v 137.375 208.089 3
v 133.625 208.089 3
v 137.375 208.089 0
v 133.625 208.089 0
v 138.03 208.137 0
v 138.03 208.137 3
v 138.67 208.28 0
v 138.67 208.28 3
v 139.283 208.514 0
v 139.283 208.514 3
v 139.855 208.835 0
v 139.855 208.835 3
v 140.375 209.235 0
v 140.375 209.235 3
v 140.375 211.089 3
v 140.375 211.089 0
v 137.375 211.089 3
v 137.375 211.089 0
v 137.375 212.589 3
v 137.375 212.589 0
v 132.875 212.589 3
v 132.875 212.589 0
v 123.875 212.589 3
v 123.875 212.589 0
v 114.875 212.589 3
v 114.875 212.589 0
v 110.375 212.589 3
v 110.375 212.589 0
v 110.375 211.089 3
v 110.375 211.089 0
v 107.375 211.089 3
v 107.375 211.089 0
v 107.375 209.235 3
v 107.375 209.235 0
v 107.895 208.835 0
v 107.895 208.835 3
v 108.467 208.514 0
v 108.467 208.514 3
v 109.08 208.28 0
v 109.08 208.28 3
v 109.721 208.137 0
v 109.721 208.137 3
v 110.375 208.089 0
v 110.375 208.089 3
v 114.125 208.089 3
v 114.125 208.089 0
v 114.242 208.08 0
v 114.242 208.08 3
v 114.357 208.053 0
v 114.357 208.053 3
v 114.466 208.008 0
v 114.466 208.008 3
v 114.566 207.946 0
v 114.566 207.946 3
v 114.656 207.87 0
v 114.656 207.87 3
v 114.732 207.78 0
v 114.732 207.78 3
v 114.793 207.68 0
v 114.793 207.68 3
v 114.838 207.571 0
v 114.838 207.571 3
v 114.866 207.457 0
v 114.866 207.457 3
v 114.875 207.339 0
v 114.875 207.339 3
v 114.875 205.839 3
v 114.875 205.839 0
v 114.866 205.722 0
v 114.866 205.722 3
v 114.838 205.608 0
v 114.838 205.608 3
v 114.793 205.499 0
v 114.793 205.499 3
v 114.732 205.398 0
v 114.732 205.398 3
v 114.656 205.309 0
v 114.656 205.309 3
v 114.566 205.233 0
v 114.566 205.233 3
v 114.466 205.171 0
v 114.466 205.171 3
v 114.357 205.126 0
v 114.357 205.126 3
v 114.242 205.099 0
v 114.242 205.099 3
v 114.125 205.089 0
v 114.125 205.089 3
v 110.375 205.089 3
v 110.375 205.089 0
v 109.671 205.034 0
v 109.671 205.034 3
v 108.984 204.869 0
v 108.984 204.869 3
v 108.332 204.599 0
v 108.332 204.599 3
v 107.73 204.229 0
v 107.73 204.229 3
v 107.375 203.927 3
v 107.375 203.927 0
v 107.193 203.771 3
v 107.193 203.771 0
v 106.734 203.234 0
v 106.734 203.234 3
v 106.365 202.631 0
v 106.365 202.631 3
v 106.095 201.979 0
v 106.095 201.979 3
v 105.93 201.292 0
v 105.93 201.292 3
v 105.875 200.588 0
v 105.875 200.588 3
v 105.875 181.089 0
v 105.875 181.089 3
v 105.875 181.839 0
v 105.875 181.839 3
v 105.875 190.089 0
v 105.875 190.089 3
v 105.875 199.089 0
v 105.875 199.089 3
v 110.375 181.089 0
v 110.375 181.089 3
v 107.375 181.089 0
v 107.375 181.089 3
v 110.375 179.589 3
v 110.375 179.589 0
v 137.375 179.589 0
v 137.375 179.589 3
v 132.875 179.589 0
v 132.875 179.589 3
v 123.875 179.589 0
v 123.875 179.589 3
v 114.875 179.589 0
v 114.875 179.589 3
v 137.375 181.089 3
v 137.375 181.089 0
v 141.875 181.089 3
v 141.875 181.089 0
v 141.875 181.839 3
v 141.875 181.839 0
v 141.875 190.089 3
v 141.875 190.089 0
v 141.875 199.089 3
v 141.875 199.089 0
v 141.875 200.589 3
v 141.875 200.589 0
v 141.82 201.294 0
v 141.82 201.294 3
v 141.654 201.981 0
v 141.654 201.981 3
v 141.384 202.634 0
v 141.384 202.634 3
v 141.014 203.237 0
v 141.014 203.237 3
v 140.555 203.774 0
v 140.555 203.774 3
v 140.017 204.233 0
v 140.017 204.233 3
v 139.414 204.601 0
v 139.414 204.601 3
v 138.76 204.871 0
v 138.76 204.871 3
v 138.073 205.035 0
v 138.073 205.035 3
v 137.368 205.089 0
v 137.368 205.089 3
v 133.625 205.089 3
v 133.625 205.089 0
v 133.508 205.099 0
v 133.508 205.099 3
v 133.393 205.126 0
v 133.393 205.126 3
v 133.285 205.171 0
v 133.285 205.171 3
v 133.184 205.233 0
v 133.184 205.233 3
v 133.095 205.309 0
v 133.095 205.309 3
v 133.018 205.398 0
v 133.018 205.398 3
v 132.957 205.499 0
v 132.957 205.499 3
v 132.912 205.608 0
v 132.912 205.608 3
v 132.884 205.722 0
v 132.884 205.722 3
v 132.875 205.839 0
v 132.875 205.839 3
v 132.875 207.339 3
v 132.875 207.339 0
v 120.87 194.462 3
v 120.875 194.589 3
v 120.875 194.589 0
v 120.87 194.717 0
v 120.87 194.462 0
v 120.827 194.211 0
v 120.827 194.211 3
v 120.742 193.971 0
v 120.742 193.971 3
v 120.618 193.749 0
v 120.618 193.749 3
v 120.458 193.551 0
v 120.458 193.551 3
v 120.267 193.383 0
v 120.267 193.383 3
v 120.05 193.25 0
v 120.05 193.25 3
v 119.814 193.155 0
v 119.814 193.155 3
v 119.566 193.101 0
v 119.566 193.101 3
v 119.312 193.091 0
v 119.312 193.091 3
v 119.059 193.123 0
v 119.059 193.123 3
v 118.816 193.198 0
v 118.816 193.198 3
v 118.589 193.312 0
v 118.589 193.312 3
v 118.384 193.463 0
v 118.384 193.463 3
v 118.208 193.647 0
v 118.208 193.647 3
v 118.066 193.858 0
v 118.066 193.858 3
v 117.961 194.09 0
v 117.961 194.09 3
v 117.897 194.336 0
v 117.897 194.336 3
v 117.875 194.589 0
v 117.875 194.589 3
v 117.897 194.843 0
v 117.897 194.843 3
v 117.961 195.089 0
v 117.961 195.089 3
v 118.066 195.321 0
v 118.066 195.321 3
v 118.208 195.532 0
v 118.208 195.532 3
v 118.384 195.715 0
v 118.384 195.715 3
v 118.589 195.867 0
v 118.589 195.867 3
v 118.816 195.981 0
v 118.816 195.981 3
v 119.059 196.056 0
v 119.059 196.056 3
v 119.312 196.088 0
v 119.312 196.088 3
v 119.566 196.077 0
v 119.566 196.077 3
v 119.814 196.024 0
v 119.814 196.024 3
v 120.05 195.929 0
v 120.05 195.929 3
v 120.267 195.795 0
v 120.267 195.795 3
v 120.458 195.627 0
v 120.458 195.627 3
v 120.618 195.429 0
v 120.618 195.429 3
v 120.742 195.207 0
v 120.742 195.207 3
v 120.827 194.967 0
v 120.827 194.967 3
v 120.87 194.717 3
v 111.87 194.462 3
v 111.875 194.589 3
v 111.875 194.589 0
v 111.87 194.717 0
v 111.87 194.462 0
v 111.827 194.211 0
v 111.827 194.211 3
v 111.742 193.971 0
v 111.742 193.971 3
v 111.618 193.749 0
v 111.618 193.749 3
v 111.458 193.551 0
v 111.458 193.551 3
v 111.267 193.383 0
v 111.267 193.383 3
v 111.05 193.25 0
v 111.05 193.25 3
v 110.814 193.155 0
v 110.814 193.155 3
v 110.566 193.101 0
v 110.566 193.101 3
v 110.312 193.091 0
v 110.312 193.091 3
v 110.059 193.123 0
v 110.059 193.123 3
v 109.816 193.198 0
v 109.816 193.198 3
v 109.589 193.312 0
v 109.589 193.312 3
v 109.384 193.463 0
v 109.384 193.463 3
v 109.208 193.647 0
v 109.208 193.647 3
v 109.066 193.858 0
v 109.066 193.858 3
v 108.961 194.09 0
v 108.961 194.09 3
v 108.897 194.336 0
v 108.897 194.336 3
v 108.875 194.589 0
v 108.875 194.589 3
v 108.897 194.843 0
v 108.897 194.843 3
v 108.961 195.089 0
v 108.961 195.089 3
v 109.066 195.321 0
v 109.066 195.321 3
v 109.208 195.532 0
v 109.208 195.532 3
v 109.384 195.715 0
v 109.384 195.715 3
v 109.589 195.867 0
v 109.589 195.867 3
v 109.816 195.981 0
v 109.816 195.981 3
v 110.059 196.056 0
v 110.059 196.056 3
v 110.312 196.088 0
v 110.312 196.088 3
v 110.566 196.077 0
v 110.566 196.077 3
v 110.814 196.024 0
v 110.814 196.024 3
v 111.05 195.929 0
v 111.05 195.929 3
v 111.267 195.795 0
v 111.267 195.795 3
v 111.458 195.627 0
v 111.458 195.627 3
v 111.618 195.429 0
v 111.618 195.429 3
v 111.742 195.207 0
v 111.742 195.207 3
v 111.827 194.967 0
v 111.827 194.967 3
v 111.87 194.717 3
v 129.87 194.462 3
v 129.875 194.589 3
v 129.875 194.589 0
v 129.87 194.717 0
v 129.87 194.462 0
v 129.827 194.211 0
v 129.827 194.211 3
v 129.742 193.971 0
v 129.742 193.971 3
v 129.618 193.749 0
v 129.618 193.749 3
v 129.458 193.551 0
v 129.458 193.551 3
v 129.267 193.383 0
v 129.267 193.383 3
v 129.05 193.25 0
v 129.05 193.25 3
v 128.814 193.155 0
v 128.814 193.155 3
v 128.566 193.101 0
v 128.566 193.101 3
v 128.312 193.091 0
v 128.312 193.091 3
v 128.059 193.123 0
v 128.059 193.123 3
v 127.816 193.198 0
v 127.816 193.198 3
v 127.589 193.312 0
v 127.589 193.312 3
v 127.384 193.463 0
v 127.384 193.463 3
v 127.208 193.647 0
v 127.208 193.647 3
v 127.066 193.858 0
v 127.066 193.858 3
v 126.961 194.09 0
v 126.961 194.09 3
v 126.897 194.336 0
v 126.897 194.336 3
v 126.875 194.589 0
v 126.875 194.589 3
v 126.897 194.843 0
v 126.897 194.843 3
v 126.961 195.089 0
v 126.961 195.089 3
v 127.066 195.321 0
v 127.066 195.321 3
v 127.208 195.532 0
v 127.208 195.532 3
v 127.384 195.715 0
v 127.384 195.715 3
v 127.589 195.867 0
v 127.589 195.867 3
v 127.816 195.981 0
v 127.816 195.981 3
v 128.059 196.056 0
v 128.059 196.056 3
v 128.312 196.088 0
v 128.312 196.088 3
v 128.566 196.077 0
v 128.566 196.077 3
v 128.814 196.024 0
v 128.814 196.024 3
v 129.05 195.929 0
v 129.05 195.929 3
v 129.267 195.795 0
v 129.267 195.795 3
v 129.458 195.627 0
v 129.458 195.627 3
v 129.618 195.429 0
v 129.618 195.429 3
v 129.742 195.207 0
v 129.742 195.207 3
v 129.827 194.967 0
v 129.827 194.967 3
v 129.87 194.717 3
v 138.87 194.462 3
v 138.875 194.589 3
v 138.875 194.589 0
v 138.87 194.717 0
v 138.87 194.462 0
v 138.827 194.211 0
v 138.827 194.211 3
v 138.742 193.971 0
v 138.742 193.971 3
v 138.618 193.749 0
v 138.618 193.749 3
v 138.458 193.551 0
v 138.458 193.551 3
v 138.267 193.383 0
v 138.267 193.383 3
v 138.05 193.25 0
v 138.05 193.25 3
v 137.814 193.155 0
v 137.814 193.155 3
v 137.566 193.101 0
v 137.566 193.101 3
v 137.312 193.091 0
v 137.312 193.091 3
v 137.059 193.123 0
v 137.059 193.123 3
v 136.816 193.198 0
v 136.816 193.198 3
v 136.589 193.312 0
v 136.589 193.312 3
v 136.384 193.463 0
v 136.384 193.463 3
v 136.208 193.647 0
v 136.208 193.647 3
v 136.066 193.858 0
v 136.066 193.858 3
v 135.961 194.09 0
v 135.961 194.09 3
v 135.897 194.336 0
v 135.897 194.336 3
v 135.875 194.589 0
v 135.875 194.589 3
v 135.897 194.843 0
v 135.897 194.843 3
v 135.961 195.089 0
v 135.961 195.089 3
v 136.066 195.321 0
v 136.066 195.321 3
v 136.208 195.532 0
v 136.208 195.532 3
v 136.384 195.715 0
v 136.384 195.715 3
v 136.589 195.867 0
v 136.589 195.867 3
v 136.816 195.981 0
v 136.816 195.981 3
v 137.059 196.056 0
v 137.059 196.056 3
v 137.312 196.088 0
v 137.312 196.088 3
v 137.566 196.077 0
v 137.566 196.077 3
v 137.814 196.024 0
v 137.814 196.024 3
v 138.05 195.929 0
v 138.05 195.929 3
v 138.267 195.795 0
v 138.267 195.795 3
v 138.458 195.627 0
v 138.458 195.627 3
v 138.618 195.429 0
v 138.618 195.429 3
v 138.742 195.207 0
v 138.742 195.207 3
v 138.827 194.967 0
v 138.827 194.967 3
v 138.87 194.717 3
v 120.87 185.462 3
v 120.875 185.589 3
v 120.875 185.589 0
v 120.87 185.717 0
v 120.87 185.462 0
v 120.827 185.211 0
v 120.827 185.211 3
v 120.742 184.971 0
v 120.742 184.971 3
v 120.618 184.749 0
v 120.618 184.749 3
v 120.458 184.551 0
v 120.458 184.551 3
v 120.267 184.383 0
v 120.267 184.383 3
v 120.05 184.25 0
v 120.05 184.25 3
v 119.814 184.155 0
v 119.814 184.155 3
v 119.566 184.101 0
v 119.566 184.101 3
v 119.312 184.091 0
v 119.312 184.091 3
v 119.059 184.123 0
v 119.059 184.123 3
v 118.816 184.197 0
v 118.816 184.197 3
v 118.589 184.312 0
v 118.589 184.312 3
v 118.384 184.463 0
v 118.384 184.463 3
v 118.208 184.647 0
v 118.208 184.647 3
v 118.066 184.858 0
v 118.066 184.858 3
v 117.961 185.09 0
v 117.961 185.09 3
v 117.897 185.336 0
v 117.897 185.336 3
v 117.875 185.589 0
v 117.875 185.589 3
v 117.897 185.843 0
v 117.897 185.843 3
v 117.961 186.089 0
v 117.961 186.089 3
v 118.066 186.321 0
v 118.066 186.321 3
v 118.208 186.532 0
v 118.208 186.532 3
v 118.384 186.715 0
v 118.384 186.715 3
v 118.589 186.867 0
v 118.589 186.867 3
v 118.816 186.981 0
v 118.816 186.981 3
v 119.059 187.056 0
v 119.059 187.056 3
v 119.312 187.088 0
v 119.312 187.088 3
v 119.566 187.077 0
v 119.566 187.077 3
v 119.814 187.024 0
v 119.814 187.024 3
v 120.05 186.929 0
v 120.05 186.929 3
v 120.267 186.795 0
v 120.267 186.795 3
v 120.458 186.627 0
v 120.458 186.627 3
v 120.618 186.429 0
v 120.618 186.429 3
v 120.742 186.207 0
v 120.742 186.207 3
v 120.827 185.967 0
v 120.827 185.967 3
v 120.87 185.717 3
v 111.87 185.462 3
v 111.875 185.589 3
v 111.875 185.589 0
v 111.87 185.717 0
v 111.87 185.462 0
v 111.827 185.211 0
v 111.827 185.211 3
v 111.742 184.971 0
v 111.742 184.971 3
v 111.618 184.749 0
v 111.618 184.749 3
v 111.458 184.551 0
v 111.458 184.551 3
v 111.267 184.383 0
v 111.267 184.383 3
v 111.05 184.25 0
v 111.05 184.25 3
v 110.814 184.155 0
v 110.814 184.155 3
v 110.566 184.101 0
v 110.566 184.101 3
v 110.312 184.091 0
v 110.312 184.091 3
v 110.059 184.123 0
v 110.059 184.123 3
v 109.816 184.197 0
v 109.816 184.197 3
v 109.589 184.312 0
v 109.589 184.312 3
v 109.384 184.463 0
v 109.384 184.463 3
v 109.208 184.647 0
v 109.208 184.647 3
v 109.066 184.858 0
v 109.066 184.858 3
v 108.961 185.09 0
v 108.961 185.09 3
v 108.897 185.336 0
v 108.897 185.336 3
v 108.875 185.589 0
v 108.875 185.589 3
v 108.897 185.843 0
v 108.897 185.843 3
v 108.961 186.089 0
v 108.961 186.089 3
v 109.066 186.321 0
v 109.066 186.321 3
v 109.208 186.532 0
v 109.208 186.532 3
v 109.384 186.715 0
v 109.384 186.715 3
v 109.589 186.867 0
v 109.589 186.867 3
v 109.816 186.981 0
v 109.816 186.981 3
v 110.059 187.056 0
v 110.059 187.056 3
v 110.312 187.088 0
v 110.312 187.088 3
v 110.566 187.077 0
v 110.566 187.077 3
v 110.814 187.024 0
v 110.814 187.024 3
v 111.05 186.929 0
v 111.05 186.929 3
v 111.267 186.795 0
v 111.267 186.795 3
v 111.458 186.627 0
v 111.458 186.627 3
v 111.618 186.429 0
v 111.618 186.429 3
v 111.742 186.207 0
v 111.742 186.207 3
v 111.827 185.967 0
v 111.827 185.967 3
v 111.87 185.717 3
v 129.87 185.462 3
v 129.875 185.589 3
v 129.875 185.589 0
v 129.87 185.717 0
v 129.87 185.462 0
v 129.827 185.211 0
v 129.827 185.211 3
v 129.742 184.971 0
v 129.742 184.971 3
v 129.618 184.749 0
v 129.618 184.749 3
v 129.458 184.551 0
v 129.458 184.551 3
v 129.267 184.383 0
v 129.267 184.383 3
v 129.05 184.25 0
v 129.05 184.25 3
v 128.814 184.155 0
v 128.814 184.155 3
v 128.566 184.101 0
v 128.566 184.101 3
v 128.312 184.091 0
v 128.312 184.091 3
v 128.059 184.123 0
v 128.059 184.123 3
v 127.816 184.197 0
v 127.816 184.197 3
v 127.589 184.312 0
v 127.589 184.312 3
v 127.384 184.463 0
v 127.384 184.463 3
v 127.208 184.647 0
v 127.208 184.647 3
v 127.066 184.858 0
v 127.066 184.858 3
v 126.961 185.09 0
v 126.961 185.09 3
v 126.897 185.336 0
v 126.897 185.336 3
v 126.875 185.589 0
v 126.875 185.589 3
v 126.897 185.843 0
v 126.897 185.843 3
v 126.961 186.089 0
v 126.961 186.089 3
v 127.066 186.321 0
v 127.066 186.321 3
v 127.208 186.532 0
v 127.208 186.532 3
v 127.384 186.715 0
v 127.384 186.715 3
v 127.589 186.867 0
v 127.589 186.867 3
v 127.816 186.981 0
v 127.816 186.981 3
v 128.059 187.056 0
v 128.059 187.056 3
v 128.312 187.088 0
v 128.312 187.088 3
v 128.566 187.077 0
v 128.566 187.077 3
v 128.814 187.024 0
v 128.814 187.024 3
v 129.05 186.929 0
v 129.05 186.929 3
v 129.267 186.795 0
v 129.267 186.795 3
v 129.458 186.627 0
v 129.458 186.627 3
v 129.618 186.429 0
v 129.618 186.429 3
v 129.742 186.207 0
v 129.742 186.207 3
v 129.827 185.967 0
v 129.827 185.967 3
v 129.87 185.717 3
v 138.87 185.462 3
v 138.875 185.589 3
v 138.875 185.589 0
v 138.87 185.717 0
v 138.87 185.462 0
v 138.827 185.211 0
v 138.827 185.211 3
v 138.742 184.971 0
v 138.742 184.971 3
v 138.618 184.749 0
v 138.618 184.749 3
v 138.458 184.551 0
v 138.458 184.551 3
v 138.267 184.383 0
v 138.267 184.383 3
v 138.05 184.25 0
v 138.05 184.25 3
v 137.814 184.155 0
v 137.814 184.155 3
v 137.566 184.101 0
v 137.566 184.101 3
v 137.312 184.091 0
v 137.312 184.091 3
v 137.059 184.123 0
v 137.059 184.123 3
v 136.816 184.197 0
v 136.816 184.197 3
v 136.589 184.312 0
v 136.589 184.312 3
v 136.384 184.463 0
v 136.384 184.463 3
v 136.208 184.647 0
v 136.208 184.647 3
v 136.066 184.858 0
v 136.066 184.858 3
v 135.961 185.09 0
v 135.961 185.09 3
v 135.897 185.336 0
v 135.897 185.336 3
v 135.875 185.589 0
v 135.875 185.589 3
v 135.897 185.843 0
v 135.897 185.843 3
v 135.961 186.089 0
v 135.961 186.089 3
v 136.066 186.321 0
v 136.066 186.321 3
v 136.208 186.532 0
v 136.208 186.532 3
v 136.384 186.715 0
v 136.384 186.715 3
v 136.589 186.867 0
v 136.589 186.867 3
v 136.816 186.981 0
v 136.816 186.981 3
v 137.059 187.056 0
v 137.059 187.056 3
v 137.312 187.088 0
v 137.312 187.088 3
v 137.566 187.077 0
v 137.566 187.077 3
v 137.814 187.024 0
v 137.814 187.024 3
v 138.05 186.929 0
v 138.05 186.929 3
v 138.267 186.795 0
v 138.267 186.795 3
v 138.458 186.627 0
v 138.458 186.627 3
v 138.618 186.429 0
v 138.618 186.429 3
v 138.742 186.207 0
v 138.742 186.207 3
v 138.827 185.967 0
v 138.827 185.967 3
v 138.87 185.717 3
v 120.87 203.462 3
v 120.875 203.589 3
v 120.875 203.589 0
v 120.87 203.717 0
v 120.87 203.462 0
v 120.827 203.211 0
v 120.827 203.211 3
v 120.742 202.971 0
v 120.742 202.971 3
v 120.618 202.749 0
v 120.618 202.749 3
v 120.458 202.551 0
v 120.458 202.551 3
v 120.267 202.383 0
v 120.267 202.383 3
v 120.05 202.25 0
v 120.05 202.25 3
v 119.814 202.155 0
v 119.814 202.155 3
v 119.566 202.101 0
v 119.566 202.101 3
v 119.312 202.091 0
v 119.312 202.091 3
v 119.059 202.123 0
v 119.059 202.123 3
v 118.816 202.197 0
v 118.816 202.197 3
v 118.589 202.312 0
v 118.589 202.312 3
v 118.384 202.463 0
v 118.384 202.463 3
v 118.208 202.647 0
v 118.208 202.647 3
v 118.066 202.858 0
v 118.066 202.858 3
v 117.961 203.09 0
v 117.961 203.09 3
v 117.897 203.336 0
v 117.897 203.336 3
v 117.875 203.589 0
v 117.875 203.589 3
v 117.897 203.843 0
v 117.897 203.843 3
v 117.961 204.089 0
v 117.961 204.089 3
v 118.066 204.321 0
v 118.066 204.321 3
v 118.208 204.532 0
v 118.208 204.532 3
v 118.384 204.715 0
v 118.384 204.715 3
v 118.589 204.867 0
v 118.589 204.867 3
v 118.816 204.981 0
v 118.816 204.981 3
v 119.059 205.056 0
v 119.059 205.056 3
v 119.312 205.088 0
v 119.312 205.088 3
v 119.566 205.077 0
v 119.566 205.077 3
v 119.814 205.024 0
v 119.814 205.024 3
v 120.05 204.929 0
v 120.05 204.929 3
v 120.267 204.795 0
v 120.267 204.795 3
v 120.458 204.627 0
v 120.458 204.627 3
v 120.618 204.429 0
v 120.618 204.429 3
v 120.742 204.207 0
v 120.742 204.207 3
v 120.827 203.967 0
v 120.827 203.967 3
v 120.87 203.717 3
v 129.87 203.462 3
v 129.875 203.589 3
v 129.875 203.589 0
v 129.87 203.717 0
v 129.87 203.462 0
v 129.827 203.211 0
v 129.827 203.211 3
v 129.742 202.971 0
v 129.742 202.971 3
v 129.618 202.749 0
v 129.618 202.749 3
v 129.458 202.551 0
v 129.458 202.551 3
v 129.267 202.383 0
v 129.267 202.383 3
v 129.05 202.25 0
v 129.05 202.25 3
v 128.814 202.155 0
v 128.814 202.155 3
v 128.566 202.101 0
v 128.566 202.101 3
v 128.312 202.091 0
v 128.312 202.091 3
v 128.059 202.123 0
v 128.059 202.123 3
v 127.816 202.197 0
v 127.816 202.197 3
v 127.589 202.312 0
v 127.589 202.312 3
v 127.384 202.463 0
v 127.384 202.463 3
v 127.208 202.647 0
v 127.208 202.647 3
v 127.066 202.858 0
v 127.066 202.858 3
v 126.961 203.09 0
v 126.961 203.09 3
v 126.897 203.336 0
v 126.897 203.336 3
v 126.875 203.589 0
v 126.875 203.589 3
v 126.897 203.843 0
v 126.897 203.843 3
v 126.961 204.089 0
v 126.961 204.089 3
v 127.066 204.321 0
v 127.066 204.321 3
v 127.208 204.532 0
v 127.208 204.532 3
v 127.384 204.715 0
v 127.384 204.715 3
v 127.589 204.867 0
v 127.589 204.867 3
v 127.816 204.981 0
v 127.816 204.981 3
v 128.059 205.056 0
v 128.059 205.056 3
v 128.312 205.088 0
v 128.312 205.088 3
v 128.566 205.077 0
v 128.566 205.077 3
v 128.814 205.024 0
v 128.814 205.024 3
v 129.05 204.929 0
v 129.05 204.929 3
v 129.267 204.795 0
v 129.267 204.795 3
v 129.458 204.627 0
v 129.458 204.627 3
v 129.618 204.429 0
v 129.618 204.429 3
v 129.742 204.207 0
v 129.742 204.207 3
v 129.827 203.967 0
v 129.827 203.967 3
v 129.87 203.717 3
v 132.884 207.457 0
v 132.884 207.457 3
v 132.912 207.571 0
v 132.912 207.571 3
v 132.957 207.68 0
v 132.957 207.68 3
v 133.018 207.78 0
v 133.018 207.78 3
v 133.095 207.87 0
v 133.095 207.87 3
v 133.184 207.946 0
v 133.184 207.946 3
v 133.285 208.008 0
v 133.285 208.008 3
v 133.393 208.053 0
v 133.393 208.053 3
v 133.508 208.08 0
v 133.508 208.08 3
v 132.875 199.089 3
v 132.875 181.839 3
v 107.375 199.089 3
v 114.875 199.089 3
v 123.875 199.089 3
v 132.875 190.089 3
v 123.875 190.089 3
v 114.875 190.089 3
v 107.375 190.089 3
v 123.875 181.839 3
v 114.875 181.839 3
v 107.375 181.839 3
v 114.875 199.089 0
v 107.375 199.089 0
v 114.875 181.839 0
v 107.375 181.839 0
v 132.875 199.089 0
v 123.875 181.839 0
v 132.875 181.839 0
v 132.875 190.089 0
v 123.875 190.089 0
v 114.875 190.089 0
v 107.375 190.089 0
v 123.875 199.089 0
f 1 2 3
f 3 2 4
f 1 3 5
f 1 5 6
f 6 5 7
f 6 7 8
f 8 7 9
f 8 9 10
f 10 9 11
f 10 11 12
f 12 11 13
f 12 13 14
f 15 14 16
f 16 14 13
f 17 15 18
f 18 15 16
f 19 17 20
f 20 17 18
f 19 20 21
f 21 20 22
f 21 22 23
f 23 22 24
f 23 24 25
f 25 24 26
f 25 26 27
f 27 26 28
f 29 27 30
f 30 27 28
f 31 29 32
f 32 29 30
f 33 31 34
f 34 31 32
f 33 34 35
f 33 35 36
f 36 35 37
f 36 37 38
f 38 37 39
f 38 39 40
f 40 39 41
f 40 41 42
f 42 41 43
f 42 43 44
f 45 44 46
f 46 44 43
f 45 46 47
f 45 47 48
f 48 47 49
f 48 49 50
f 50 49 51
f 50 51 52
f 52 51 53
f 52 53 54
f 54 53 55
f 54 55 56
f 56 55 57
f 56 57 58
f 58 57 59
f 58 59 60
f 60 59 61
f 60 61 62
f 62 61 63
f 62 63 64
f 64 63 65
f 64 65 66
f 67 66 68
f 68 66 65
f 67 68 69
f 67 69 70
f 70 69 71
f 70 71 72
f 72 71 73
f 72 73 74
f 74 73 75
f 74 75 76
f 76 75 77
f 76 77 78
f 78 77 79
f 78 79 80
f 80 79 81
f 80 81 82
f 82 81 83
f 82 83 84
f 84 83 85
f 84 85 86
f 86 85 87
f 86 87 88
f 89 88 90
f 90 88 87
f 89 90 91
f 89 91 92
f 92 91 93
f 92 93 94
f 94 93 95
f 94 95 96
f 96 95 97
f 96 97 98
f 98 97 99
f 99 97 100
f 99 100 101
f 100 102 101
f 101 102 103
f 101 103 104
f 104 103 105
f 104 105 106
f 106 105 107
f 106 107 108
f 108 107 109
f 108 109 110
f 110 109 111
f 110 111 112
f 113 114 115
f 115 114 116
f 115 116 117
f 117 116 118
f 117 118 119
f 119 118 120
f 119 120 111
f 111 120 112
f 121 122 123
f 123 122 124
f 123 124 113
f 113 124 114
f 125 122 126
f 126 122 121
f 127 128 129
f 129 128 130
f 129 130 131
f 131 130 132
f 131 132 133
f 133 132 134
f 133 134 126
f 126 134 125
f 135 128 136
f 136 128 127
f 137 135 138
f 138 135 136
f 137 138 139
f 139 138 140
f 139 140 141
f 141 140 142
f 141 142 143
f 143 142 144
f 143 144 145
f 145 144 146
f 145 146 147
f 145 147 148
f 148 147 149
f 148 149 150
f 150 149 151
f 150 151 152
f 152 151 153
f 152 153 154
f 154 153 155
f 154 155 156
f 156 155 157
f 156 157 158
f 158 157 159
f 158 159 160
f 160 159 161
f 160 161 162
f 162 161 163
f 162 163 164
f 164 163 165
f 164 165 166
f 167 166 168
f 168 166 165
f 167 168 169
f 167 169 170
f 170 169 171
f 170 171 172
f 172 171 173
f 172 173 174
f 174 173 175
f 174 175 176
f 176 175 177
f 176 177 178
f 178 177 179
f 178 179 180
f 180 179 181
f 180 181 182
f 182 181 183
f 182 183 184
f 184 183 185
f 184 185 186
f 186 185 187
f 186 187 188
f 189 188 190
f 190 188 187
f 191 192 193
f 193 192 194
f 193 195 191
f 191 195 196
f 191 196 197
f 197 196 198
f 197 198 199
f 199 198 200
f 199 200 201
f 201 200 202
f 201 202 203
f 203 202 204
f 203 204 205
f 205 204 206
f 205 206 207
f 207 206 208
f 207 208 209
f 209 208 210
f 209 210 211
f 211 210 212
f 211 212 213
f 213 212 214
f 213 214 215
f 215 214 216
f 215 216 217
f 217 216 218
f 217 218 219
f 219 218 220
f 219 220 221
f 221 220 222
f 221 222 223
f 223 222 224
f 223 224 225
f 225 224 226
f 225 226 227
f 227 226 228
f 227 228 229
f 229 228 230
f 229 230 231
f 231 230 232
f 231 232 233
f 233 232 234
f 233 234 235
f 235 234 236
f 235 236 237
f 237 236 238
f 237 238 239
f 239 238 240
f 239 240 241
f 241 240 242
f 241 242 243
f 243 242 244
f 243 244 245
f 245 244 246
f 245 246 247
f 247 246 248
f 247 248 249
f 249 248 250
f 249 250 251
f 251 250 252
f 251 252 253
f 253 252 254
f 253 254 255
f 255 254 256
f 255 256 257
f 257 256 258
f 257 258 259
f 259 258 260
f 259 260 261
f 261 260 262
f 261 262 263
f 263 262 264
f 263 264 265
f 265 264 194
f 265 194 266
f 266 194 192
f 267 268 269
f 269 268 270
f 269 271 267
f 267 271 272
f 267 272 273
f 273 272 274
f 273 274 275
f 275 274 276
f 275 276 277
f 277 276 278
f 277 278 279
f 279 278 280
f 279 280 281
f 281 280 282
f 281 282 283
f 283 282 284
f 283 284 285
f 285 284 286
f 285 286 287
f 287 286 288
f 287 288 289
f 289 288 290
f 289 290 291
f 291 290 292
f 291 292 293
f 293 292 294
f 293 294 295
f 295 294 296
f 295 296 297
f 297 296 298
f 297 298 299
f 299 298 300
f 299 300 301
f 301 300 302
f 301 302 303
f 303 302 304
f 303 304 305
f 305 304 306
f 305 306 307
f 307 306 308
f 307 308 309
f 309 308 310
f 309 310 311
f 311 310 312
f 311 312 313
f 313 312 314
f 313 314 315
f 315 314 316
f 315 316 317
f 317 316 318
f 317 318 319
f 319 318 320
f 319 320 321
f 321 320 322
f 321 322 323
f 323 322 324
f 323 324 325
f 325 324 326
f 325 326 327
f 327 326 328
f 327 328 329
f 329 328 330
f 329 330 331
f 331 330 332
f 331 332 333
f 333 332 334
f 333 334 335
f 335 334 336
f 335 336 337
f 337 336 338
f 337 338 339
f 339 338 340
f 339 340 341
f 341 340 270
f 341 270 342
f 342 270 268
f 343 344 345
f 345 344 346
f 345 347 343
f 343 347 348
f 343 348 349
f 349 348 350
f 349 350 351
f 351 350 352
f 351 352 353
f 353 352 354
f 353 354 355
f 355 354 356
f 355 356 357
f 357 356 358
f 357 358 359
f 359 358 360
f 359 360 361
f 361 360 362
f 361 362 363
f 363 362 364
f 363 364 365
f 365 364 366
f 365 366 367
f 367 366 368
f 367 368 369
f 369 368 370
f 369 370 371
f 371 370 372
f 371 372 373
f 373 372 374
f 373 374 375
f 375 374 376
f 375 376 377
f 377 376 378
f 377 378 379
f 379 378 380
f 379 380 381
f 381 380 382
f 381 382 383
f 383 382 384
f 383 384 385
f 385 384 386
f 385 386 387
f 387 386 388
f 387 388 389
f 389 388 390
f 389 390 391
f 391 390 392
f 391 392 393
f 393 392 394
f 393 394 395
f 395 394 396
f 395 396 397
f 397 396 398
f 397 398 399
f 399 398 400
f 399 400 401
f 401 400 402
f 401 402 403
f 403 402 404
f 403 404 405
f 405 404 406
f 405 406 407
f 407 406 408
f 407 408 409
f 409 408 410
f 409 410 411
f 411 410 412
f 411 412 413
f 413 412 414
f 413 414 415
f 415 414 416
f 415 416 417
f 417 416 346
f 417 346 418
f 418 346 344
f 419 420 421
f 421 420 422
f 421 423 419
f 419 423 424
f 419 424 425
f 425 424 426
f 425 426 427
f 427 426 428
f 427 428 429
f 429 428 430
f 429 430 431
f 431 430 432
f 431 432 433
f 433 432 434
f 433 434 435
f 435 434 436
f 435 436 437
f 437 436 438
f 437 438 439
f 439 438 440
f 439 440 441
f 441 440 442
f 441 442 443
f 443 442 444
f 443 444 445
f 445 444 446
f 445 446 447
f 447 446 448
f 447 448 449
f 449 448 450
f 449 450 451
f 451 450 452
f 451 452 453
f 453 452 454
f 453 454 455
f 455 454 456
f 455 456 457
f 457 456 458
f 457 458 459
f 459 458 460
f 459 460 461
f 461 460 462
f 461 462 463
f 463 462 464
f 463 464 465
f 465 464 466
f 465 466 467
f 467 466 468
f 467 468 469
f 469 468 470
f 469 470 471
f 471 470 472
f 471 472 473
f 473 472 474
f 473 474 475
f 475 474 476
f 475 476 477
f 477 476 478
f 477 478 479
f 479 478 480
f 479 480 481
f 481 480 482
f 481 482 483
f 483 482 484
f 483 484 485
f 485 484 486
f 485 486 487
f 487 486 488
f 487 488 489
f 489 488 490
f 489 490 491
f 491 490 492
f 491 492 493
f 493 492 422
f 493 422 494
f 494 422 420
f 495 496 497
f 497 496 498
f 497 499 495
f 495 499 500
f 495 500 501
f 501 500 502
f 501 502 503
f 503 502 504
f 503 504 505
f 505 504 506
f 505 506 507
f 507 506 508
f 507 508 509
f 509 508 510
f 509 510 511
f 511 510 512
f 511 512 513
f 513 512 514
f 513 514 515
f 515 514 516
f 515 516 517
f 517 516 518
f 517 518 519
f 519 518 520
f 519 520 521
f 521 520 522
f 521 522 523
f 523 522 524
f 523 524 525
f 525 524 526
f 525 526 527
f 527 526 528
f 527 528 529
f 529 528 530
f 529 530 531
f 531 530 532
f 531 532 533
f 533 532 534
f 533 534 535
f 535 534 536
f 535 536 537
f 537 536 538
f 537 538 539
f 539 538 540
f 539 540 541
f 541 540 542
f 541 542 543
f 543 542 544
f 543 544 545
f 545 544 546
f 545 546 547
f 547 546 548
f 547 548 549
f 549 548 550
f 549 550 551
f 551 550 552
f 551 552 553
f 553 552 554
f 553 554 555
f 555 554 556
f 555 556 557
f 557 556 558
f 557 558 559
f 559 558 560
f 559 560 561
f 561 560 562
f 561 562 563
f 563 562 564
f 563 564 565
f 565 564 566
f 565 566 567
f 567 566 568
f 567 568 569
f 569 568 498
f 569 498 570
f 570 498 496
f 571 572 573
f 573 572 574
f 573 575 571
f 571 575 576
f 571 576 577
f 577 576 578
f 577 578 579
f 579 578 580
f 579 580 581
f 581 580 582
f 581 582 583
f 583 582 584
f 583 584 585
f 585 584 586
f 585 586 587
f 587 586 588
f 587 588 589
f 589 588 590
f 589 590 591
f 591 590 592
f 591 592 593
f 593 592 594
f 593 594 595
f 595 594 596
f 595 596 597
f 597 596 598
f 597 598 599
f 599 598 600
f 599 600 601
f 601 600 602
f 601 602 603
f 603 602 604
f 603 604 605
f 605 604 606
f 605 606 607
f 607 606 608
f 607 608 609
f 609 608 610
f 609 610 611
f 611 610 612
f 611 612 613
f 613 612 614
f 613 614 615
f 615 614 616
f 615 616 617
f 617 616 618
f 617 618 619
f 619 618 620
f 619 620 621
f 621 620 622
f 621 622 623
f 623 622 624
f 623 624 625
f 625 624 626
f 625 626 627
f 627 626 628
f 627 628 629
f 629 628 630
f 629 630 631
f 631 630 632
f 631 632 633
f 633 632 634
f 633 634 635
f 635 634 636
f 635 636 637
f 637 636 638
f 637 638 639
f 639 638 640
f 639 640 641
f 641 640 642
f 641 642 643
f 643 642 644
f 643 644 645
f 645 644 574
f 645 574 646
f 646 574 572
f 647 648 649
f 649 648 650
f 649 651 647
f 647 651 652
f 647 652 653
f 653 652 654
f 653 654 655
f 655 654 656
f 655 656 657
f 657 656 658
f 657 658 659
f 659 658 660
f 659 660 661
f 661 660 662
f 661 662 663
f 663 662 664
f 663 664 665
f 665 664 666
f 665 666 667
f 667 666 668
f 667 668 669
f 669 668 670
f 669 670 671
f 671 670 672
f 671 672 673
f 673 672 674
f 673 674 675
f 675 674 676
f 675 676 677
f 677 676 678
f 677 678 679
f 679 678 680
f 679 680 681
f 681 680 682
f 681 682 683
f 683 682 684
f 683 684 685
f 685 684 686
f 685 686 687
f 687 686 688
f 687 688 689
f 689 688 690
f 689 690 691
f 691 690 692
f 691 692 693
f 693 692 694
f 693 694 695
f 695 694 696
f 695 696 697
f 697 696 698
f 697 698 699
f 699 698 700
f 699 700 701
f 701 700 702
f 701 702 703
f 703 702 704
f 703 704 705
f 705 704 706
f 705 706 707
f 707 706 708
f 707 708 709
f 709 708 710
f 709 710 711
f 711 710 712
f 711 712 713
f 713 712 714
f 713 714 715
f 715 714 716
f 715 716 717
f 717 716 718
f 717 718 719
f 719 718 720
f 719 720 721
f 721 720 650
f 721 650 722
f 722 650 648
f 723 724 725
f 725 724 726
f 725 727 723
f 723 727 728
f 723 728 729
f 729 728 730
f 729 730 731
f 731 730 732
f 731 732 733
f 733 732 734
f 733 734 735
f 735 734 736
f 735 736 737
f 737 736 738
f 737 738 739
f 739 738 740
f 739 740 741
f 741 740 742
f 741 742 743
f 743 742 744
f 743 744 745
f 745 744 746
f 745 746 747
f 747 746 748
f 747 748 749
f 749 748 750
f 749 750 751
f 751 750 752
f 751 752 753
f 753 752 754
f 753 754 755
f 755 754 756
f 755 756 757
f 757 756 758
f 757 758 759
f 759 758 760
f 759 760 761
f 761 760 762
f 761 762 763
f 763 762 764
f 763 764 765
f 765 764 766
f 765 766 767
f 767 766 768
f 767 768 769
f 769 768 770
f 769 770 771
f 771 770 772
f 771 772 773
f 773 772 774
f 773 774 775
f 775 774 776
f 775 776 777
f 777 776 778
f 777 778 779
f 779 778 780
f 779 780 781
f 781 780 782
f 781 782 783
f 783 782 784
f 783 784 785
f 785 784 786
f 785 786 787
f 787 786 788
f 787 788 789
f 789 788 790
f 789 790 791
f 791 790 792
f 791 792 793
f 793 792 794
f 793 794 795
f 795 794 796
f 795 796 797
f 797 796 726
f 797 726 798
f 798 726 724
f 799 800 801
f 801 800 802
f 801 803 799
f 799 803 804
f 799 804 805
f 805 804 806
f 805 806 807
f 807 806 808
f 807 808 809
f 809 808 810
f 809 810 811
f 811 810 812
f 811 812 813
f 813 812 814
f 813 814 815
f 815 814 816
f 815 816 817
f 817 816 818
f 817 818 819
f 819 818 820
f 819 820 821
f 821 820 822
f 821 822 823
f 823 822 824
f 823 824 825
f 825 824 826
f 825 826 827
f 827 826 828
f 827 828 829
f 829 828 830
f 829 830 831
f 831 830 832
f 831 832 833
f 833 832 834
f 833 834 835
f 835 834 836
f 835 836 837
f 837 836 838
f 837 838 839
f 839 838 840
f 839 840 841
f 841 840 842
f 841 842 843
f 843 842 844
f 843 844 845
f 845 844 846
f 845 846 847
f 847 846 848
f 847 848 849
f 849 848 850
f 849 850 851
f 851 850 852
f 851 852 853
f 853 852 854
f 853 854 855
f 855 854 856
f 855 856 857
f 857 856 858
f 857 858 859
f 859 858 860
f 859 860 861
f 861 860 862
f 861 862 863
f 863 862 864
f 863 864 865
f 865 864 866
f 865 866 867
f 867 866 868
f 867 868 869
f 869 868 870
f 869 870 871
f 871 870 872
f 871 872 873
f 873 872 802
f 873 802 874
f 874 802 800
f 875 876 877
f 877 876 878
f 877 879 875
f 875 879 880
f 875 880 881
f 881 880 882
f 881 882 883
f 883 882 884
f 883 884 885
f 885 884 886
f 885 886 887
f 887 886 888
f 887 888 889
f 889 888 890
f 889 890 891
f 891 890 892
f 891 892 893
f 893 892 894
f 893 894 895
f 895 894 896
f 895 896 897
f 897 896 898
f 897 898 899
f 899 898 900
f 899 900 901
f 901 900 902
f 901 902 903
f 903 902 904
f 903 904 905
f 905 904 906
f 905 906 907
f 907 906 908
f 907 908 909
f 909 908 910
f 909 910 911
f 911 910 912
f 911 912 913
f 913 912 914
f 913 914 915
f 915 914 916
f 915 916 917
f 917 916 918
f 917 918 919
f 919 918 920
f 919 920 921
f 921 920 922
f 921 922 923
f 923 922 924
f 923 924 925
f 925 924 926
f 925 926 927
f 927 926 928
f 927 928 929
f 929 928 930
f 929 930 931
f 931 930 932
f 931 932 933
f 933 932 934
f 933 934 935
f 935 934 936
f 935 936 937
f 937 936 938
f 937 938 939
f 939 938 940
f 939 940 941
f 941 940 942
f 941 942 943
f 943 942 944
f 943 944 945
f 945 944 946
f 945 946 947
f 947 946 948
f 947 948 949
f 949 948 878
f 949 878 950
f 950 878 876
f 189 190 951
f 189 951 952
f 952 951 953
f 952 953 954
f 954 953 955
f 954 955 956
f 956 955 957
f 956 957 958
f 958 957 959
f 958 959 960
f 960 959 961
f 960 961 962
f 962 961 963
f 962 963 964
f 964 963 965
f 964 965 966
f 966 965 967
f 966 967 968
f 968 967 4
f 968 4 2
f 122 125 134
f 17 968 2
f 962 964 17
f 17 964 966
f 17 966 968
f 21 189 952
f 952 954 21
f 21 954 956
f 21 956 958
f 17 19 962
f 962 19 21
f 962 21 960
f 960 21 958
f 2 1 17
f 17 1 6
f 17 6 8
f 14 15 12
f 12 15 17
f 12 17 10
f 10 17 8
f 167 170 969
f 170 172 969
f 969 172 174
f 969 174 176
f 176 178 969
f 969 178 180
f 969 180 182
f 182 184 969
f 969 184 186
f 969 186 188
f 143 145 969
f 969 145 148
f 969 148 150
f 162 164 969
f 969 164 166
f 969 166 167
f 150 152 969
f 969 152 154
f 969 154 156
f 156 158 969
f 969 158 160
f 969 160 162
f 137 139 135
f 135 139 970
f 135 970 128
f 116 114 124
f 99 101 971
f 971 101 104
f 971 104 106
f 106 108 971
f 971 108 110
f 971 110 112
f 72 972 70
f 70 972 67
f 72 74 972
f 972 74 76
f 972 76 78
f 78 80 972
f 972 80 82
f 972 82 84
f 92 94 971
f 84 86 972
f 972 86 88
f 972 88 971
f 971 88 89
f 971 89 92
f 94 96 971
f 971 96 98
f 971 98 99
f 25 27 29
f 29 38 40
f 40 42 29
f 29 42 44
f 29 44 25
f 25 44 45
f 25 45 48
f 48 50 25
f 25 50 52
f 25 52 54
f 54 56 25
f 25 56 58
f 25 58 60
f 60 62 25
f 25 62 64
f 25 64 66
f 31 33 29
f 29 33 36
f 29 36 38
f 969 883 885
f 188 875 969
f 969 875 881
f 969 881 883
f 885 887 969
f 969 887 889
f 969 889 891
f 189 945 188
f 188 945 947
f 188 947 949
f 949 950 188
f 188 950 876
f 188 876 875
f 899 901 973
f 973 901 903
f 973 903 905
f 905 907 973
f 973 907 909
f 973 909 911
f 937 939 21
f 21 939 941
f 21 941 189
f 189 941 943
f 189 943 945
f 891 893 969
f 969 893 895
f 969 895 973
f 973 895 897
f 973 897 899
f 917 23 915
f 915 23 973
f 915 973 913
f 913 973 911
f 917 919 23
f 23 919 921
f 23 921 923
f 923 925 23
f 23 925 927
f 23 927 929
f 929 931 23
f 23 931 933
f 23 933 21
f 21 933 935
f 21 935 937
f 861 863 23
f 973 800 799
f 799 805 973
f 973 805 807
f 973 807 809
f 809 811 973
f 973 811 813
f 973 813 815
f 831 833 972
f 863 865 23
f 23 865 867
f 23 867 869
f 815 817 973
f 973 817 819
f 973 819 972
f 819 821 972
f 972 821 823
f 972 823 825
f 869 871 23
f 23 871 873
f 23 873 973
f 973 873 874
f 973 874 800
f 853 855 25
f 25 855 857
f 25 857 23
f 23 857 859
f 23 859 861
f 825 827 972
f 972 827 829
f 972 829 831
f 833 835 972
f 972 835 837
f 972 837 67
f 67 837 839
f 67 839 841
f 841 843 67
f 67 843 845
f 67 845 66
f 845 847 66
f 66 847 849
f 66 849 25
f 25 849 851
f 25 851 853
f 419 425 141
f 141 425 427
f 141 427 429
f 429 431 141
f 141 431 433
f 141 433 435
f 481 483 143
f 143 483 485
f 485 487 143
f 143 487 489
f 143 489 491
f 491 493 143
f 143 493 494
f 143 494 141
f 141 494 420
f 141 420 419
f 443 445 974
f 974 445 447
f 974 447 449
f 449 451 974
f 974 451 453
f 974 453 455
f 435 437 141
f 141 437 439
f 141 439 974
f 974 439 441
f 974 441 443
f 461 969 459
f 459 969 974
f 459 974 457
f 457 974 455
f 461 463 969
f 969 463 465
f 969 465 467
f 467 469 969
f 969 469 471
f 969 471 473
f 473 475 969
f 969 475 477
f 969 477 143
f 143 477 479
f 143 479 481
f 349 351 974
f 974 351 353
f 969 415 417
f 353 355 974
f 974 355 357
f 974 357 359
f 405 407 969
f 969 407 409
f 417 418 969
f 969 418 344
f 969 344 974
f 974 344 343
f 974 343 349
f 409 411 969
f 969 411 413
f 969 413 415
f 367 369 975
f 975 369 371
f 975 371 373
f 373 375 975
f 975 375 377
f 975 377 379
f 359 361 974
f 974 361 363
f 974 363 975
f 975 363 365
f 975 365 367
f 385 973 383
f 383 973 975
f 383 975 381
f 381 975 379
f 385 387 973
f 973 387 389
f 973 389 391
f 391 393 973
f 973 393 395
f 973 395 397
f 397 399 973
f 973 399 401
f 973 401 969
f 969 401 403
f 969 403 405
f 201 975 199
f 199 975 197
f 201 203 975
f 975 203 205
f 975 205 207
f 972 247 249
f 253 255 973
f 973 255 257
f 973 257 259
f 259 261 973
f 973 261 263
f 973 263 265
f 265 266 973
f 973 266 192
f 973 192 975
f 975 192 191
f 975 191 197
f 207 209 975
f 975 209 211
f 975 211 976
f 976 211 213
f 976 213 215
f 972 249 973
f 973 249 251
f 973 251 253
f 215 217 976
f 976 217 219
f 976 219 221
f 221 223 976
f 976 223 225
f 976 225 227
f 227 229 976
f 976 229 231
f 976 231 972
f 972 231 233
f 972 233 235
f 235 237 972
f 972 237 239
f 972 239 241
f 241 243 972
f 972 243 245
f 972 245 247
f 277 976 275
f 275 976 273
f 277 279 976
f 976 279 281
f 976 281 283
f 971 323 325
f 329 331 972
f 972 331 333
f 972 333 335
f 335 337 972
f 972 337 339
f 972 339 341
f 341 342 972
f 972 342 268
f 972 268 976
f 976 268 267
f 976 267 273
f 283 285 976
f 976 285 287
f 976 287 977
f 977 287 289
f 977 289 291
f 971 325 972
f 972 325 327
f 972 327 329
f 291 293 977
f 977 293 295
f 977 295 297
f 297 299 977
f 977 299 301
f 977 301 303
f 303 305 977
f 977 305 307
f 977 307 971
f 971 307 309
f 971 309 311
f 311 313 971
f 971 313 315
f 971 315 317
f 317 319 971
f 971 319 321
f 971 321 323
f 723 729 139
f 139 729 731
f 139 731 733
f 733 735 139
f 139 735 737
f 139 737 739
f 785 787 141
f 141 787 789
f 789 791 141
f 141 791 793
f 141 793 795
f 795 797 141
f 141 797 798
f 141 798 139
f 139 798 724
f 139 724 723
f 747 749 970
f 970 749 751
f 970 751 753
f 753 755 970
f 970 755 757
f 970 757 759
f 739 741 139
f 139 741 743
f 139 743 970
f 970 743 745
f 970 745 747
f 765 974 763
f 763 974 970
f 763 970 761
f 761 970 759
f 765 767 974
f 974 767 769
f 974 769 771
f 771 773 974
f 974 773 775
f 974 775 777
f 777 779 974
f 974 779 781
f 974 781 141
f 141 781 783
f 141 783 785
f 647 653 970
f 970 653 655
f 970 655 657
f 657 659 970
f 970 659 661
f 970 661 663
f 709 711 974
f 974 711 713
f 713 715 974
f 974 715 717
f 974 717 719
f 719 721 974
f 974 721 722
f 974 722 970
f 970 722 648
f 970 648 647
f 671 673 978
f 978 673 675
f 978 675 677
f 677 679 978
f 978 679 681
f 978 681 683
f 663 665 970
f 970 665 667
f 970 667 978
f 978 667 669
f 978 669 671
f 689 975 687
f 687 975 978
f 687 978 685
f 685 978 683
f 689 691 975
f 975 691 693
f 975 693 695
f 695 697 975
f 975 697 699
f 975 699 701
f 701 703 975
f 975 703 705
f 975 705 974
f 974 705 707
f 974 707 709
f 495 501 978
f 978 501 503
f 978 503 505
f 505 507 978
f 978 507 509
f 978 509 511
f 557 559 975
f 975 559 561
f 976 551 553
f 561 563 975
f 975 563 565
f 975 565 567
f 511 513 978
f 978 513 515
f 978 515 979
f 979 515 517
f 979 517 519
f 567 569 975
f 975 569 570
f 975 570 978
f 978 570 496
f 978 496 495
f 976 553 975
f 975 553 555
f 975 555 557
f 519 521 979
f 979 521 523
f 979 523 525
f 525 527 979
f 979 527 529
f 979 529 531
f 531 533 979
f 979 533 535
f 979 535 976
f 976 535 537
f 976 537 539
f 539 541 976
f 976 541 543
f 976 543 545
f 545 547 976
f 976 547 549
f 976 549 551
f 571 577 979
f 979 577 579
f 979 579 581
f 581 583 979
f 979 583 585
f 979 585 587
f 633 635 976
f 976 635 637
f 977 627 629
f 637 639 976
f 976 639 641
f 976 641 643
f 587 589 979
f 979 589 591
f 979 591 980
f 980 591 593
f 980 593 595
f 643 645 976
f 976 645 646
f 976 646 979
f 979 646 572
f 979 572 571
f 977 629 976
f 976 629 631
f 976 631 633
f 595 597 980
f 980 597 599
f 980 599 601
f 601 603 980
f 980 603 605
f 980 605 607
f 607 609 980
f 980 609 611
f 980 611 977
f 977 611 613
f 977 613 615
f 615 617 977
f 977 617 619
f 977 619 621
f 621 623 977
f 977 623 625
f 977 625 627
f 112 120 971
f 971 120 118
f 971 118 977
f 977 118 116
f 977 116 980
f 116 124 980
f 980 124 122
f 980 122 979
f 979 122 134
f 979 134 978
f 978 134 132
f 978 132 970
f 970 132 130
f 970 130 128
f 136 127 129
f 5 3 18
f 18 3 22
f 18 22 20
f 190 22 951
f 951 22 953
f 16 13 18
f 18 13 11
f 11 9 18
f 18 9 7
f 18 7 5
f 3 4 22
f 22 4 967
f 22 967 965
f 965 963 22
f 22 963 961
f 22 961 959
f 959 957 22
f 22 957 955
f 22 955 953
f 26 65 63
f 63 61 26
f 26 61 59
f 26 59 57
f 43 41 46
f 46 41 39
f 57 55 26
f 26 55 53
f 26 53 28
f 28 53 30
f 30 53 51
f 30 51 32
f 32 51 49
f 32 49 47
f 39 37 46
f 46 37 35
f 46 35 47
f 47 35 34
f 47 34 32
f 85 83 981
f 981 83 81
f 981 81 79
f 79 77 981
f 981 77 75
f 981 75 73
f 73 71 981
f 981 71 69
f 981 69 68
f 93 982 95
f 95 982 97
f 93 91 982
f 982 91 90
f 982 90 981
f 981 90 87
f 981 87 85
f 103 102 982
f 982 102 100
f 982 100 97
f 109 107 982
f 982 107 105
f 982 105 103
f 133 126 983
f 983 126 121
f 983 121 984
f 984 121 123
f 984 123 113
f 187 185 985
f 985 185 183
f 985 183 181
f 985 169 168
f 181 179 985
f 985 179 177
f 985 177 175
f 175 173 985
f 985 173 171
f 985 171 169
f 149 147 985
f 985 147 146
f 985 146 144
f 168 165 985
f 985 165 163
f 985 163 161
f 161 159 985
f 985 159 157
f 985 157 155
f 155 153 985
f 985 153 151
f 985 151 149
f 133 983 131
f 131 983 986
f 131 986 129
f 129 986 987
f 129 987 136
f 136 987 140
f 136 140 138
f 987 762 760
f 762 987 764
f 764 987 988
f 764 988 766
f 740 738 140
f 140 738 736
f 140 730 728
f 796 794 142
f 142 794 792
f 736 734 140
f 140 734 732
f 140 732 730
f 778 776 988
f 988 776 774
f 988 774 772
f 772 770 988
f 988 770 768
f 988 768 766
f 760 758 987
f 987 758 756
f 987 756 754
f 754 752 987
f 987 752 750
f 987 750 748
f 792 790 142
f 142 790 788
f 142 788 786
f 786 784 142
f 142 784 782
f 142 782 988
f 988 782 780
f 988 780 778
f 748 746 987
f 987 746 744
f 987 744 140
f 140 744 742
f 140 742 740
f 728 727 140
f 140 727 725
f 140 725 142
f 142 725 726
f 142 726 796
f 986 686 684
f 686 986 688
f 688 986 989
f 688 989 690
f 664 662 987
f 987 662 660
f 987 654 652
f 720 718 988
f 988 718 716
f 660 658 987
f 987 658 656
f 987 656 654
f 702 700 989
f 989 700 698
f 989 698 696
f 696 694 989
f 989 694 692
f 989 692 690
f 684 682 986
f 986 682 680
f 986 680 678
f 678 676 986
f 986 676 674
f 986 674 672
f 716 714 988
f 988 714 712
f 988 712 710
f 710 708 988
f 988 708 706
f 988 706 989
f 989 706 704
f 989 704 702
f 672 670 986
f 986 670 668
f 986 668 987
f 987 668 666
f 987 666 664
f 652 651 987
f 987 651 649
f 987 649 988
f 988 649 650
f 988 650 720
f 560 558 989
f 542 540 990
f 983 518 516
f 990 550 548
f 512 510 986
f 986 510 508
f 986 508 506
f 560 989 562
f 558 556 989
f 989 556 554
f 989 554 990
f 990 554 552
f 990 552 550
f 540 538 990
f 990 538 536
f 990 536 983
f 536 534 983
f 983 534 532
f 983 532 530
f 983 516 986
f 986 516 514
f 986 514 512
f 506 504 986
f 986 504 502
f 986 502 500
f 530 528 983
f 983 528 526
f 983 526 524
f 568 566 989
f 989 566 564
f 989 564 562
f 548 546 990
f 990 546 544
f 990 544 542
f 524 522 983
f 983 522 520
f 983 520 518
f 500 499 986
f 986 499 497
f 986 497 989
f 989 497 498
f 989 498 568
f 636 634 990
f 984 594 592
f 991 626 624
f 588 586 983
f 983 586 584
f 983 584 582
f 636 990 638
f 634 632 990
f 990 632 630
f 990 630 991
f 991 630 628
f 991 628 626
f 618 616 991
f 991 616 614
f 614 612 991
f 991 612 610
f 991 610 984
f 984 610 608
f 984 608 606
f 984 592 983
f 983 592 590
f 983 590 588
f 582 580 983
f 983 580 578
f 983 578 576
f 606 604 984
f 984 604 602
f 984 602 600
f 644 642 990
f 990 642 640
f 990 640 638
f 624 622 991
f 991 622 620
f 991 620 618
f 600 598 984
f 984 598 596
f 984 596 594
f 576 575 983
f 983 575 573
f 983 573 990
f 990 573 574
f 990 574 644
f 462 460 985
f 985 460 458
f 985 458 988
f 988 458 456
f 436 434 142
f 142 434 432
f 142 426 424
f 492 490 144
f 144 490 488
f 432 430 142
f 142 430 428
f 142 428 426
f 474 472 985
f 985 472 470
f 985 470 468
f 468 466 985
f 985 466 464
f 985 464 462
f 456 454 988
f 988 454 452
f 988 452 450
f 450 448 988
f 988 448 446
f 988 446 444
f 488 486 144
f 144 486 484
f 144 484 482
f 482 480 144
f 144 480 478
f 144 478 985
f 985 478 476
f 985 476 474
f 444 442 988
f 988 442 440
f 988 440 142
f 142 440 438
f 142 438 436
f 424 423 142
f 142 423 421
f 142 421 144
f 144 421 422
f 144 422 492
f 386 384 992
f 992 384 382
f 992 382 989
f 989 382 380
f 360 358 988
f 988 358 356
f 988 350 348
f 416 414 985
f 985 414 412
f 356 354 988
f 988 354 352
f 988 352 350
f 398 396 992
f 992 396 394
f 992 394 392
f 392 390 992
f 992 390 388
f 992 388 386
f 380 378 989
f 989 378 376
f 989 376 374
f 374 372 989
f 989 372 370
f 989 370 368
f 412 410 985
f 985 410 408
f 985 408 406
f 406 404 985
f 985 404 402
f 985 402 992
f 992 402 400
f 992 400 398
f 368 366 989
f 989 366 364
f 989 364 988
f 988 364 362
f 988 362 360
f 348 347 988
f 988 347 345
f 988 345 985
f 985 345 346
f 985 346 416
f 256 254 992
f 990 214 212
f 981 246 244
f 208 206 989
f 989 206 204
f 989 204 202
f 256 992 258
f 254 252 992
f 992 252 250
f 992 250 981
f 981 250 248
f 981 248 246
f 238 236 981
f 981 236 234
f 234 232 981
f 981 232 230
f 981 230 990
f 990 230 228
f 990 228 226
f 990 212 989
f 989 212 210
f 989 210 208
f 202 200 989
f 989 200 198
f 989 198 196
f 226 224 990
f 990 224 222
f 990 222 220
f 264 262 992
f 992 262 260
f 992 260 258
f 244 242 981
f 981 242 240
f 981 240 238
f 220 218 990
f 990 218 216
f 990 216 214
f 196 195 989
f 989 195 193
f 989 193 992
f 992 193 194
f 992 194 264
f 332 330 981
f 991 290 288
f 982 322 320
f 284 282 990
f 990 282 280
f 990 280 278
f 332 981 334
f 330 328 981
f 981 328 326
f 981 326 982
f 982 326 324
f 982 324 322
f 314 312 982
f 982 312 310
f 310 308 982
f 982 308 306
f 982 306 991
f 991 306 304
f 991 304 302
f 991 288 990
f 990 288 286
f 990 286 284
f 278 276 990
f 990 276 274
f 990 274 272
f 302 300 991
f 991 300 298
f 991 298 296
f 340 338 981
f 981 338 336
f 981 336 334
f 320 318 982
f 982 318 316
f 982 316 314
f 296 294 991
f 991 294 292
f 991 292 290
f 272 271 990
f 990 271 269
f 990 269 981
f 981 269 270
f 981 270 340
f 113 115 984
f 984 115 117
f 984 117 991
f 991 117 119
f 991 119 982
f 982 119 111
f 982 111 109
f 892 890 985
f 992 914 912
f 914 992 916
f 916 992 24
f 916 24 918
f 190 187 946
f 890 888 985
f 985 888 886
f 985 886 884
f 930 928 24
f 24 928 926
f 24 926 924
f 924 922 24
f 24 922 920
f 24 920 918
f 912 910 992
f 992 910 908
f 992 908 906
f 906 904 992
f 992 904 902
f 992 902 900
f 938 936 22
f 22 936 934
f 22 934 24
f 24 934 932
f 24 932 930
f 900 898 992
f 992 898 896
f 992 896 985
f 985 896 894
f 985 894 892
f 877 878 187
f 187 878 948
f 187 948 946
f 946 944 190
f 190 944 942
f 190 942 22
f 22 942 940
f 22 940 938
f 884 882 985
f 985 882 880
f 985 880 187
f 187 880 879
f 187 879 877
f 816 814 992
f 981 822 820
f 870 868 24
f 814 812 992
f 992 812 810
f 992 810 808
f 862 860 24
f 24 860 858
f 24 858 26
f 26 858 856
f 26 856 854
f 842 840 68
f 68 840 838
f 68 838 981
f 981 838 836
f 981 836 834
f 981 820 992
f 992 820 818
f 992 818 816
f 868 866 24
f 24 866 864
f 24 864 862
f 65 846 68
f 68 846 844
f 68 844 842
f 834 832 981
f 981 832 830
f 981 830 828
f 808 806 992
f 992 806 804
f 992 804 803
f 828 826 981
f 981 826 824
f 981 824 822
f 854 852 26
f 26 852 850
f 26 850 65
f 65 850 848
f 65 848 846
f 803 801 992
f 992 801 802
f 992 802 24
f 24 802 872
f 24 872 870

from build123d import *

# Parameters (mm, degrees)
MODEL_R                 = 1.5
SALIENTE_EXTRUIR1_DEPTH = 3


with BuildPart() as part:
    # Model → Saliente-Extruir1 (new body)
    with BuildSketch(Plane.XY):
        with BuildLine():
            Line((110.375172306, 212.589330986), (110.375172306, 211.089330986))
            Line((110.375172306, 211.089330986), (107.375172306, 211.089330986))
            Line((107.375172306, 211.089330986), (107.375172306, 209.23522902))
            ThreePointArc((107.375172306, 209.23522902), (108.769472902, 208.385555371), (110.375172306, 208.089330986))
            Line((110.375172306, 208.089330986), (114.125172656, 208.089330986))
            ThreePointArc((114.125172656, 208.089330986), (114.655502742, 207.869661072), (114.875172656, 207.339330986))
            Line((114.875172656, 207.339330986), (114.875172656, 205.839330986))
            ThreePointArc((114.875172656, 205.839330986), (114.655502742, 205.3090009), (114.125172656, 205.089330986))
            Line((114.125172656, 205.089330986), (110.375172306, 205.089330986))
            ThreePointArc((110.375172306, 205.089330986), (107.192564198, 203.770683786), (105.875172656, 200.587555713))
            Line((105.875172656, 200.587555713), (105.875172656, 181.089330986))
            Line((105.875172656, 181.089330986), (110.375172306, 181.089330986))
            Line((110.375172306, 181.089330986), (110.375172306, 179.589330986))
            Line((110.375172306, 179.589330986), (137.375172656, 179.589330986))
            Line((137.375172656, 179.589330986), (137.375172656, 181.089330986))
            Line((137.375172656, 181.089330986), (141.875172656, 181.089330986))
            Line((141.875172656, 181.089330986), (141.875172306, 200.589330986))
            ThreePointArc((141.875172306, 200.589330986), (140.554536331, 203.773925842), (137.367774797, 205.089324906))
            Line((137.367774797, 205.089324906), (133.625176703, 205.089319857))
            ThreePointArc((133.625176703, 205.089319857), (133.09484632, 205.308989056), (132.875175691, 205.839318846))
            Line((132.875175691, 205.839318846), (132.875173667, 207.339318846))
            ThreePointArc((132.875173667, 207.339318846), (133.094842866, 207.869649228), (133.625172656, 208.089319857))
            Line((133.625172656, 208.089319857), (137.375178726, 208.089324916))
            ThreePointArc((137.375178726, 208.089324916), (138.980875531, 208.385553219), (140.375172656, 209.23522902))
            Line((140.375172656, 209.23522902), (140.375172656, 211.089330986))
            Line((140.375172656, 211.089330986), (137.375172656, 211.089330986))
            Line((137.375172656, 211.089330986), (137.375165869, 212.589324916))
            Line((137.375165869, 212.589324916), (110.375172306, 212.589330986))
        make_face()
        with Locations((110.375172306, 185.589330986)):
            Circle(MODEL_R, mode=Mode.SUBTRACT)
        with Locations((119.375172306, 185.589330986)):
            Circle(MODEL_R, mode=Mode.SUBTRACT)
        with Locations((110.375172306, 194.589330986)):
            Circle(MODEL_R, mode=Mode.SUBTRACT)
        with Locations((119.375172306, 194.589330986)):
            Circle(MODEL_R, mode=Mode.SUBTRACT)
        with Locations((128.375172306, 185.589330986)):
            Circle(MODEL_R, mode=Mode.SUBTRACT)
        with Locations((137.375172306, 185.589330986)):
            Circle(MODEL_R, mode=Mode.SUBTRACT)
        with Locations((128.375172306, 194.589330986)):
            Circle(MODEL_R, mode=Mode.SUBTRACT)
        with Locations((137.375172306, 194.589330986)):
            Circle(MODEL_R, mode=Mode.SUBTRACT)
        with Locations((119.375172656, 203.589330986)):
            Circle(MODEL_R, mode=Mode.SUBTRACT)
        with Locations((128.375172656, 203.589330986)):
            Circle(MODEL_R, mode=Mode.SUBTRACT)
    extrude(amount=SALIENTE_EXTRUIR1_DEPTH)


solid = part.part
